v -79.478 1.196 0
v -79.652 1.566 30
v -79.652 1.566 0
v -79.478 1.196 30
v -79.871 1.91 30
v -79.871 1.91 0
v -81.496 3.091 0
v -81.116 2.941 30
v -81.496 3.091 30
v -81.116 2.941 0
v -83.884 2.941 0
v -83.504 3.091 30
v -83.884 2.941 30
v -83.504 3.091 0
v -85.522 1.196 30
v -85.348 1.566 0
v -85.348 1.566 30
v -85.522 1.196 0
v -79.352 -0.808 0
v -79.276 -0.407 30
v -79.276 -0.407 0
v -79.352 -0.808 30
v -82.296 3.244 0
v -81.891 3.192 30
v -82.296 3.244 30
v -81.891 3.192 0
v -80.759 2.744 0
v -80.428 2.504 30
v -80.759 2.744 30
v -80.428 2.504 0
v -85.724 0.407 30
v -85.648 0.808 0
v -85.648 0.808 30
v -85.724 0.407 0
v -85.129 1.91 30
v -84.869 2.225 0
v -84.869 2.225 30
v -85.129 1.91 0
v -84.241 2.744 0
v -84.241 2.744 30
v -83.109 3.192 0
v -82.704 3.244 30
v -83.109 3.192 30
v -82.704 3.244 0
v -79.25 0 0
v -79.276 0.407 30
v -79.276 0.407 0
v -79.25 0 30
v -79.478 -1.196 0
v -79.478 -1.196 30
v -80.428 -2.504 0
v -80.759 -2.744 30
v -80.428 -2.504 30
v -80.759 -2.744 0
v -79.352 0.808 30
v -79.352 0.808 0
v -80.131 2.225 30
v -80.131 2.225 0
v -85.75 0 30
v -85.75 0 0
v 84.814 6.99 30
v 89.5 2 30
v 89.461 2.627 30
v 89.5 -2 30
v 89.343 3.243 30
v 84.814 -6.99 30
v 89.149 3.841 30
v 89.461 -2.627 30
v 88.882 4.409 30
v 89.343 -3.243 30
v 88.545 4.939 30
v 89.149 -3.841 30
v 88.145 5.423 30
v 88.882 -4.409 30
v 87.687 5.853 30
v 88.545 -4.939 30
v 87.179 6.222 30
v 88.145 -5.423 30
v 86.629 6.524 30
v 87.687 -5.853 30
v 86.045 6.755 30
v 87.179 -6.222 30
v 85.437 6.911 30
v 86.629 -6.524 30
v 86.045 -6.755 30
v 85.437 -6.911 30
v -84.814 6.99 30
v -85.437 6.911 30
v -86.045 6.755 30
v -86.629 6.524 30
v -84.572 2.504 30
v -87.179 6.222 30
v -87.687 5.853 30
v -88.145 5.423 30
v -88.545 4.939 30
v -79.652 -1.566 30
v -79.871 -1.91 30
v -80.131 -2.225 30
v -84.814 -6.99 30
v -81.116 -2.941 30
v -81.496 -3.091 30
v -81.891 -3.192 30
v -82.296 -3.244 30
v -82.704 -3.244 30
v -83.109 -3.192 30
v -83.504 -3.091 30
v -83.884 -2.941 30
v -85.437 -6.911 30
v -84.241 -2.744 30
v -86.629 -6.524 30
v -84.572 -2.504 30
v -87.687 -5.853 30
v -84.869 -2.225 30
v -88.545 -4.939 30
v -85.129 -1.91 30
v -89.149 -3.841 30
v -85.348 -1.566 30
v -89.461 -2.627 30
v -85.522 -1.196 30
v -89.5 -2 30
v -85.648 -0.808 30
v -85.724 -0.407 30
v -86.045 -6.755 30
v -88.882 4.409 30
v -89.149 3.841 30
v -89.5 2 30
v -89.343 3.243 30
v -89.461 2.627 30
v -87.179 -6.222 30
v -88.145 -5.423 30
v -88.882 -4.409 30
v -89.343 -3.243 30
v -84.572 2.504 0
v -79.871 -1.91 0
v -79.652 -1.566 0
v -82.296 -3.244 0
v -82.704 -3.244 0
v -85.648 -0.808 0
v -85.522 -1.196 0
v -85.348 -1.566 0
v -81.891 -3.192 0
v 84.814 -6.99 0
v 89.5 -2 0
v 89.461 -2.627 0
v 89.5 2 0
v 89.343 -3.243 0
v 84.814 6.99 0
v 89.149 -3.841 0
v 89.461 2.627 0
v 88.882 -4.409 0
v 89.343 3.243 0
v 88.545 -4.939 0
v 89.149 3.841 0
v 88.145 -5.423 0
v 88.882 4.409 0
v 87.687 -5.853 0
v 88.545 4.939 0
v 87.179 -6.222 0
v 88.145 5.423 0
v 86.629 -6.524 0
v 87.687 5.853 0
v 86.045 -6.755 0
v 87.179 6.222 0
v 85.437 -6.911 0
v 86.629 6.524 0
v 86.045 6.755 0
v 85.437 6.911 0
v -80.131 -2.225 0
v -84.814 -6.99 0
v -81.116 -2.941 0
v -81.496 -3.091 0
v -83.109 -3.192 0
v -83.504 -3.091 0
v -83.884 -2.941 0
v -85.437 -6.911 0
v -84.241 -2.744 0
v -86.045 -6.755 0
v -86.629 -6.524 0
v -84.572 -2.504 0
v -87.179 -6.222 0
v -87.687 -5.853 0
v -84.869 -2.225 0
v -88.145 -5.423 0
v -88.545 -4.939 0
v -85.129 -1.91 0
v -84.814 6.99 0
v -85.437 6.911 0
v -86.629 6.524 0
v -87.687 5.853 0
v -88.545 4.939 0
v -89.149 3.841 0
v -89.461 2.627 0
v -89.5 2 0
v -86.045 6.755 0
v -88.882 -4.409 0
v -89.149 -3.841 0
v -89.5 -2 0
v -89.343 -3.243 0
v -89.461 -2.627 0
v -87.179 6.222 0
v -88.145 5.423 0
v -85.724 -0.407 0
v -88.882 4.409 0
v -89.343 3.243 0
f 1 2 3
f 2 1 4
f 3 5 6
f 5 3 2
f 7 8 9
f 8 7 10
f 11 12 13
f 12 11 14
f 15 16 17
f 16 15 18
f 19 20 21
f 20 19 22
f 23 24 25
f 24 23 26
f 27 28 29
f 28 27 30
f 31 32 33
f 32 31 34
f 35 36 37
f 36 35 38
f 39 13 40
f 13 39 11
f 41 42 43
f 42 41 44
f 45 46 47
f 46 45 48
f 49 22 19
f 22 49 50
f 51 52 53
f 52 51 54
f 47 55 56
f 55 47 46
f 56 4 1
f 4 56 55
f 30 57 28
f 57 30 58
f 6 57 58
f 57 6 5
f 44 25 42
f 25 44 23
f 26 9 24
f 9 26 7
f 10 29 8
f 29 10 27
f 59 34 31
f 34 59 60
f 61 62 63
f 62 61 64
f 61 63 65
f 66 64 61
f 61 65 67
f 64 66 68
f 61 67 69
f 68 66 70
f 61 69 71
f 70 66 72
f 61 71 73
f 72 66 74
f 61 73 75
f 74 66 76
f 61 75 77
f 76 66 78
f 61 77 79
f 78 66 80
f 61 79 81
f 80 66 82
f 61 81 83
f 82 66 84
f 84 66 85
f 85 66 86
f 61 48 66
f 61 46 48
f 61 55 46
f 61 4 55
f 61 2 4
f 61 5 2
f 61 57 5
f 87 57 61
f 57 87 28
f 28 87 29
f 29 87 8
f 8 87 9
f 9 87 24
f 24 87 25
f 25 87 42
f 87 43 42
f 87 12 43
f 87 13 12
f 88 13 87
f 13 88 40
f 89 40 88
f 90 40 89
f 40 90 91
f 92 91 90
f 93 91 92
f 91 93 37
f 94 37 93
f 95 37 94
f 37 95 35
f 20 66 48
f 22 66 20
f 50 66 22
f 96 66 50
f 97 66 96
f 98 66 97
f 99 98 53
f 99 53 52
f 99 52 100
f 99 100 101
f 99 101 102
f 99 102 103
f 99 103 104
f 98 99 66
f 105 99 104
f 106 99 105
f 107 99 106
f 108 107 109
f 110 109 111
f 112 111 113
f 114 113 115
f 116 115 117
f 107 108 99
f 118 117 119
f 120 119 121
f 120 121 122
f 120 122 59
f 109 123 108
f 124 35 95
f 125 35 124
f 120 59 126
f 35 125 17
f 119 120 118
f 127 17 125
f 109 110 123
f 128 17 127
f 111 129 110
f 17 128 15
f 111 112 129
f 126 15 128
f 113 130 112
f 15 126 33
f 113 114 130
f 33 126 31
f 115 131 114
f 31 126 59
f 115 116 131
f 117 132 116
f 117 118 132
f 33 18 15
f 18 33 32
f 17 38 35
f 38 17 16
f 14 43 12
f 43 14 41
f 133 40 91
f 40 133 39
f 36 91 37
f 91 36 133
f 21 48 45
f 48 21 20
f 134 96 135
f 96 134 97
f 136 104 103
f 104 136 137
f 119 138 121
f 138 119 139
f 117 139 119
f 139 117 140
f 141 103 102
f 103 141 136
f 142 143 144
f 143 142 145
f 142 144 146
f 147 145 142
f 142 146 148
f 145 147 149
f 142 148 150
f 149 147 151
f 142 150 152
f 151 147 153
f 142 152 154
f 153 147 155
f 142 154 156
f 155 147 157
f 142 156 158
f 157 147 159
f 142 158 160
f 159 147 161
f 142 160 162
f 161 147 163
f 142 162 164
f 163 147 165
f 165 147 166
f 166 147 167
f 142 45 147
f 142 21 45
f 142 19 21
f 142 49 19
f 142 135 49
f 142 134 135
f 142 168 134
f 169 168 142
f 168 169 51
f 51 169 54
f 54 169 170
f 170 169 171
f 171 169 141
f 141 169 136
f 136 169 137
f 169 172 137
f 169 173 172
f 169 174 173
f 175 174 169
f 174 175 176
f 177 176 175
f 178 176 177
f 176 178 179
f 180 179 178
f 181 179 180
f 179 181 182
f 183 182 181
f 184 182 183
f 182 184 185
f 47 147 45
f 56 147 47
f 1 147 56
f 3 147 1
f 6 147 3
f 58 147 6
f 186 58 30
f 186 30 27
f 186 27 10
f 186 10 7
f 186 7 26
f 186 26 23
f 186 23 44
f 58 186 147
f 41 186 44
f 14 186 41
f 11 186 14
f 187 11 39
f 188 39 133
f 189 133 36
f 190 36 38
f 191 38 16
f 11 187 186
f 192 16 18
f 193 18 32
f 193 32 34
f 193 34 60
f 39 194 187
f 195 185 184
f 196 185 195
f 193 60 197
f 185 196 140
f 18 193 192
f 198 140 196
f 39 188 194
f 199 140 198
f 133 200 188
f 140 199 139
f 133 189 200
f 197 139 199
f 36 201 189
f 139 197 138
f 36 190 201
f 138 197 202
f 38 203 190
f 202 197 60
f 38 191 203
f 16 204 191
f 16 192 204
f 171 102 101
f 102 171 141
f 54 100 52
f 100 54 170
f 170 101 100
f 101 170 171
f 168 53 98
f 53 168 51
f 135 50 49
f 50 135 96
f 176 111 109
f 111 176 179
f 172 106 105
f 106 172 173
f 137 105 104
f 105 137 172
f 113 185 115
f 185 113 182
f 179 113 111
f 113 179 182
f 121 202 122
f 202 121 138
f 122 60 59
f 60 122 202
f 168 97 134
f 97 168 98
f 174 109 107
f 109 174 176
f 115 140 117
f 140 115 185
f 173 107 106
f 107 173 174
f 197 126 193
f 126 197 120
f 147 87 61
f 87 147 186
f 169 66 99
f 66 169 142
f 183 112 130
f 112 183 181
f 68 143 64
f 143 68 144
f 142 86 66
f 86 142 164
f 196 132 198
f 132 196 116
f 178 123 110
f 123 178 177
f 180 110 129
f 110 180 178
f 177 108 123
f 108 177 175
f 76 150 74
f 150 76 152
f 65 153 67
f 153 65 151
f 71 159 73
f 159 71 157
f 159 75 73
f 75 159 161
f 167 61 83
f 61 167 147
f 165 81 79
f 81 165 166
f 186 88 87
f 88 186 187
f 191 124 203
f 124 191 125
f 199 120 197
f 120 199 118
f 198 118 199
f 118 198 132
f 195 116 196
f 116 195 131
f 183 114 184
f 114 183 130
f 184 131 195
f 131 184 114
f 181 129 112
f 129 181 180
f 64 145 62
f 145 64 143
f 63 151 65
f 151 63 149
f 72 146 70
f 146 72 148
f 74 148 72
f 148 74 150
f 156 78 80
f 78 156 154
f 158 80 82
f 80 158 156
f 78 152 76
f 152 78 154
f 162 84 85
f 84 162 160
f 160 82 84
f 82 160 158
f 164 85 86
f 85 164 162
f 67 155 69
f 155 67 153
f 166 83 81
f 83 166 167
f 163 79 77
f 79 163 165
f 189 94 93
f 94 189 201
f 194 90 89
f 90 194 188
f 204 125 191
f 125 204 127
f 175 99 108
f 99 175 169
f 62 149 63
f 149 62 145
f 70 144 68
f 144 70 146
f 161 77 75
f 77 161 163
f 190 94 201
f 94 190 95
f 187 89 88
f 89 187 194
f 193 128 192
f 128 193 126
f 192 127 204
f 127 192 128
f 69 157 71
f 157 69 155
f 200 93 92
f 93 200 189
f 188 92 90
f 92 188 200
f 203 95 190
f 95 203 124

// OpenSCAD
$fn = 50;


difference() {
	union() {
		hull() {
			translate(v = [-84.5000000000, 2.0000000000, 0]) {
				cylinder(h = 30, r = 5);
			}
			translate(v = [84.5000000000, 2.0000000000, 0]) {
				cylinder(h = 30, r = 5);
			}
			translate(v = [-84.5000000000, -2.0000000000, 0]) {
				cylinder(h = 30, r = 5);
			}
			translate(v = [84.5000000000, -2.0000000000, 0]) {
				cylinder(h = 30, r = 5);
			}
		}
	}
	union() {
		translate(v = [-82.5000000000, 0.0000000000, 0]) {
			cylinder(h = 30, r = 3.2500000000);
		}
		translate(v = [-82.5000000000, 0.0000000000, 0]) {
			cylinder(h = 30, r = 1.8000000000);
		}
		translate(v = [-82.5000000000, 0.0000000000, 0]) {
			cylinder(h = 30, r = 1.8000000000);
		}
		translate(v = [-82.5000000000, 0.0000000000, 0]) {
			cylinder(h = 30, r = 1.8000000000);
		}
	}
}
